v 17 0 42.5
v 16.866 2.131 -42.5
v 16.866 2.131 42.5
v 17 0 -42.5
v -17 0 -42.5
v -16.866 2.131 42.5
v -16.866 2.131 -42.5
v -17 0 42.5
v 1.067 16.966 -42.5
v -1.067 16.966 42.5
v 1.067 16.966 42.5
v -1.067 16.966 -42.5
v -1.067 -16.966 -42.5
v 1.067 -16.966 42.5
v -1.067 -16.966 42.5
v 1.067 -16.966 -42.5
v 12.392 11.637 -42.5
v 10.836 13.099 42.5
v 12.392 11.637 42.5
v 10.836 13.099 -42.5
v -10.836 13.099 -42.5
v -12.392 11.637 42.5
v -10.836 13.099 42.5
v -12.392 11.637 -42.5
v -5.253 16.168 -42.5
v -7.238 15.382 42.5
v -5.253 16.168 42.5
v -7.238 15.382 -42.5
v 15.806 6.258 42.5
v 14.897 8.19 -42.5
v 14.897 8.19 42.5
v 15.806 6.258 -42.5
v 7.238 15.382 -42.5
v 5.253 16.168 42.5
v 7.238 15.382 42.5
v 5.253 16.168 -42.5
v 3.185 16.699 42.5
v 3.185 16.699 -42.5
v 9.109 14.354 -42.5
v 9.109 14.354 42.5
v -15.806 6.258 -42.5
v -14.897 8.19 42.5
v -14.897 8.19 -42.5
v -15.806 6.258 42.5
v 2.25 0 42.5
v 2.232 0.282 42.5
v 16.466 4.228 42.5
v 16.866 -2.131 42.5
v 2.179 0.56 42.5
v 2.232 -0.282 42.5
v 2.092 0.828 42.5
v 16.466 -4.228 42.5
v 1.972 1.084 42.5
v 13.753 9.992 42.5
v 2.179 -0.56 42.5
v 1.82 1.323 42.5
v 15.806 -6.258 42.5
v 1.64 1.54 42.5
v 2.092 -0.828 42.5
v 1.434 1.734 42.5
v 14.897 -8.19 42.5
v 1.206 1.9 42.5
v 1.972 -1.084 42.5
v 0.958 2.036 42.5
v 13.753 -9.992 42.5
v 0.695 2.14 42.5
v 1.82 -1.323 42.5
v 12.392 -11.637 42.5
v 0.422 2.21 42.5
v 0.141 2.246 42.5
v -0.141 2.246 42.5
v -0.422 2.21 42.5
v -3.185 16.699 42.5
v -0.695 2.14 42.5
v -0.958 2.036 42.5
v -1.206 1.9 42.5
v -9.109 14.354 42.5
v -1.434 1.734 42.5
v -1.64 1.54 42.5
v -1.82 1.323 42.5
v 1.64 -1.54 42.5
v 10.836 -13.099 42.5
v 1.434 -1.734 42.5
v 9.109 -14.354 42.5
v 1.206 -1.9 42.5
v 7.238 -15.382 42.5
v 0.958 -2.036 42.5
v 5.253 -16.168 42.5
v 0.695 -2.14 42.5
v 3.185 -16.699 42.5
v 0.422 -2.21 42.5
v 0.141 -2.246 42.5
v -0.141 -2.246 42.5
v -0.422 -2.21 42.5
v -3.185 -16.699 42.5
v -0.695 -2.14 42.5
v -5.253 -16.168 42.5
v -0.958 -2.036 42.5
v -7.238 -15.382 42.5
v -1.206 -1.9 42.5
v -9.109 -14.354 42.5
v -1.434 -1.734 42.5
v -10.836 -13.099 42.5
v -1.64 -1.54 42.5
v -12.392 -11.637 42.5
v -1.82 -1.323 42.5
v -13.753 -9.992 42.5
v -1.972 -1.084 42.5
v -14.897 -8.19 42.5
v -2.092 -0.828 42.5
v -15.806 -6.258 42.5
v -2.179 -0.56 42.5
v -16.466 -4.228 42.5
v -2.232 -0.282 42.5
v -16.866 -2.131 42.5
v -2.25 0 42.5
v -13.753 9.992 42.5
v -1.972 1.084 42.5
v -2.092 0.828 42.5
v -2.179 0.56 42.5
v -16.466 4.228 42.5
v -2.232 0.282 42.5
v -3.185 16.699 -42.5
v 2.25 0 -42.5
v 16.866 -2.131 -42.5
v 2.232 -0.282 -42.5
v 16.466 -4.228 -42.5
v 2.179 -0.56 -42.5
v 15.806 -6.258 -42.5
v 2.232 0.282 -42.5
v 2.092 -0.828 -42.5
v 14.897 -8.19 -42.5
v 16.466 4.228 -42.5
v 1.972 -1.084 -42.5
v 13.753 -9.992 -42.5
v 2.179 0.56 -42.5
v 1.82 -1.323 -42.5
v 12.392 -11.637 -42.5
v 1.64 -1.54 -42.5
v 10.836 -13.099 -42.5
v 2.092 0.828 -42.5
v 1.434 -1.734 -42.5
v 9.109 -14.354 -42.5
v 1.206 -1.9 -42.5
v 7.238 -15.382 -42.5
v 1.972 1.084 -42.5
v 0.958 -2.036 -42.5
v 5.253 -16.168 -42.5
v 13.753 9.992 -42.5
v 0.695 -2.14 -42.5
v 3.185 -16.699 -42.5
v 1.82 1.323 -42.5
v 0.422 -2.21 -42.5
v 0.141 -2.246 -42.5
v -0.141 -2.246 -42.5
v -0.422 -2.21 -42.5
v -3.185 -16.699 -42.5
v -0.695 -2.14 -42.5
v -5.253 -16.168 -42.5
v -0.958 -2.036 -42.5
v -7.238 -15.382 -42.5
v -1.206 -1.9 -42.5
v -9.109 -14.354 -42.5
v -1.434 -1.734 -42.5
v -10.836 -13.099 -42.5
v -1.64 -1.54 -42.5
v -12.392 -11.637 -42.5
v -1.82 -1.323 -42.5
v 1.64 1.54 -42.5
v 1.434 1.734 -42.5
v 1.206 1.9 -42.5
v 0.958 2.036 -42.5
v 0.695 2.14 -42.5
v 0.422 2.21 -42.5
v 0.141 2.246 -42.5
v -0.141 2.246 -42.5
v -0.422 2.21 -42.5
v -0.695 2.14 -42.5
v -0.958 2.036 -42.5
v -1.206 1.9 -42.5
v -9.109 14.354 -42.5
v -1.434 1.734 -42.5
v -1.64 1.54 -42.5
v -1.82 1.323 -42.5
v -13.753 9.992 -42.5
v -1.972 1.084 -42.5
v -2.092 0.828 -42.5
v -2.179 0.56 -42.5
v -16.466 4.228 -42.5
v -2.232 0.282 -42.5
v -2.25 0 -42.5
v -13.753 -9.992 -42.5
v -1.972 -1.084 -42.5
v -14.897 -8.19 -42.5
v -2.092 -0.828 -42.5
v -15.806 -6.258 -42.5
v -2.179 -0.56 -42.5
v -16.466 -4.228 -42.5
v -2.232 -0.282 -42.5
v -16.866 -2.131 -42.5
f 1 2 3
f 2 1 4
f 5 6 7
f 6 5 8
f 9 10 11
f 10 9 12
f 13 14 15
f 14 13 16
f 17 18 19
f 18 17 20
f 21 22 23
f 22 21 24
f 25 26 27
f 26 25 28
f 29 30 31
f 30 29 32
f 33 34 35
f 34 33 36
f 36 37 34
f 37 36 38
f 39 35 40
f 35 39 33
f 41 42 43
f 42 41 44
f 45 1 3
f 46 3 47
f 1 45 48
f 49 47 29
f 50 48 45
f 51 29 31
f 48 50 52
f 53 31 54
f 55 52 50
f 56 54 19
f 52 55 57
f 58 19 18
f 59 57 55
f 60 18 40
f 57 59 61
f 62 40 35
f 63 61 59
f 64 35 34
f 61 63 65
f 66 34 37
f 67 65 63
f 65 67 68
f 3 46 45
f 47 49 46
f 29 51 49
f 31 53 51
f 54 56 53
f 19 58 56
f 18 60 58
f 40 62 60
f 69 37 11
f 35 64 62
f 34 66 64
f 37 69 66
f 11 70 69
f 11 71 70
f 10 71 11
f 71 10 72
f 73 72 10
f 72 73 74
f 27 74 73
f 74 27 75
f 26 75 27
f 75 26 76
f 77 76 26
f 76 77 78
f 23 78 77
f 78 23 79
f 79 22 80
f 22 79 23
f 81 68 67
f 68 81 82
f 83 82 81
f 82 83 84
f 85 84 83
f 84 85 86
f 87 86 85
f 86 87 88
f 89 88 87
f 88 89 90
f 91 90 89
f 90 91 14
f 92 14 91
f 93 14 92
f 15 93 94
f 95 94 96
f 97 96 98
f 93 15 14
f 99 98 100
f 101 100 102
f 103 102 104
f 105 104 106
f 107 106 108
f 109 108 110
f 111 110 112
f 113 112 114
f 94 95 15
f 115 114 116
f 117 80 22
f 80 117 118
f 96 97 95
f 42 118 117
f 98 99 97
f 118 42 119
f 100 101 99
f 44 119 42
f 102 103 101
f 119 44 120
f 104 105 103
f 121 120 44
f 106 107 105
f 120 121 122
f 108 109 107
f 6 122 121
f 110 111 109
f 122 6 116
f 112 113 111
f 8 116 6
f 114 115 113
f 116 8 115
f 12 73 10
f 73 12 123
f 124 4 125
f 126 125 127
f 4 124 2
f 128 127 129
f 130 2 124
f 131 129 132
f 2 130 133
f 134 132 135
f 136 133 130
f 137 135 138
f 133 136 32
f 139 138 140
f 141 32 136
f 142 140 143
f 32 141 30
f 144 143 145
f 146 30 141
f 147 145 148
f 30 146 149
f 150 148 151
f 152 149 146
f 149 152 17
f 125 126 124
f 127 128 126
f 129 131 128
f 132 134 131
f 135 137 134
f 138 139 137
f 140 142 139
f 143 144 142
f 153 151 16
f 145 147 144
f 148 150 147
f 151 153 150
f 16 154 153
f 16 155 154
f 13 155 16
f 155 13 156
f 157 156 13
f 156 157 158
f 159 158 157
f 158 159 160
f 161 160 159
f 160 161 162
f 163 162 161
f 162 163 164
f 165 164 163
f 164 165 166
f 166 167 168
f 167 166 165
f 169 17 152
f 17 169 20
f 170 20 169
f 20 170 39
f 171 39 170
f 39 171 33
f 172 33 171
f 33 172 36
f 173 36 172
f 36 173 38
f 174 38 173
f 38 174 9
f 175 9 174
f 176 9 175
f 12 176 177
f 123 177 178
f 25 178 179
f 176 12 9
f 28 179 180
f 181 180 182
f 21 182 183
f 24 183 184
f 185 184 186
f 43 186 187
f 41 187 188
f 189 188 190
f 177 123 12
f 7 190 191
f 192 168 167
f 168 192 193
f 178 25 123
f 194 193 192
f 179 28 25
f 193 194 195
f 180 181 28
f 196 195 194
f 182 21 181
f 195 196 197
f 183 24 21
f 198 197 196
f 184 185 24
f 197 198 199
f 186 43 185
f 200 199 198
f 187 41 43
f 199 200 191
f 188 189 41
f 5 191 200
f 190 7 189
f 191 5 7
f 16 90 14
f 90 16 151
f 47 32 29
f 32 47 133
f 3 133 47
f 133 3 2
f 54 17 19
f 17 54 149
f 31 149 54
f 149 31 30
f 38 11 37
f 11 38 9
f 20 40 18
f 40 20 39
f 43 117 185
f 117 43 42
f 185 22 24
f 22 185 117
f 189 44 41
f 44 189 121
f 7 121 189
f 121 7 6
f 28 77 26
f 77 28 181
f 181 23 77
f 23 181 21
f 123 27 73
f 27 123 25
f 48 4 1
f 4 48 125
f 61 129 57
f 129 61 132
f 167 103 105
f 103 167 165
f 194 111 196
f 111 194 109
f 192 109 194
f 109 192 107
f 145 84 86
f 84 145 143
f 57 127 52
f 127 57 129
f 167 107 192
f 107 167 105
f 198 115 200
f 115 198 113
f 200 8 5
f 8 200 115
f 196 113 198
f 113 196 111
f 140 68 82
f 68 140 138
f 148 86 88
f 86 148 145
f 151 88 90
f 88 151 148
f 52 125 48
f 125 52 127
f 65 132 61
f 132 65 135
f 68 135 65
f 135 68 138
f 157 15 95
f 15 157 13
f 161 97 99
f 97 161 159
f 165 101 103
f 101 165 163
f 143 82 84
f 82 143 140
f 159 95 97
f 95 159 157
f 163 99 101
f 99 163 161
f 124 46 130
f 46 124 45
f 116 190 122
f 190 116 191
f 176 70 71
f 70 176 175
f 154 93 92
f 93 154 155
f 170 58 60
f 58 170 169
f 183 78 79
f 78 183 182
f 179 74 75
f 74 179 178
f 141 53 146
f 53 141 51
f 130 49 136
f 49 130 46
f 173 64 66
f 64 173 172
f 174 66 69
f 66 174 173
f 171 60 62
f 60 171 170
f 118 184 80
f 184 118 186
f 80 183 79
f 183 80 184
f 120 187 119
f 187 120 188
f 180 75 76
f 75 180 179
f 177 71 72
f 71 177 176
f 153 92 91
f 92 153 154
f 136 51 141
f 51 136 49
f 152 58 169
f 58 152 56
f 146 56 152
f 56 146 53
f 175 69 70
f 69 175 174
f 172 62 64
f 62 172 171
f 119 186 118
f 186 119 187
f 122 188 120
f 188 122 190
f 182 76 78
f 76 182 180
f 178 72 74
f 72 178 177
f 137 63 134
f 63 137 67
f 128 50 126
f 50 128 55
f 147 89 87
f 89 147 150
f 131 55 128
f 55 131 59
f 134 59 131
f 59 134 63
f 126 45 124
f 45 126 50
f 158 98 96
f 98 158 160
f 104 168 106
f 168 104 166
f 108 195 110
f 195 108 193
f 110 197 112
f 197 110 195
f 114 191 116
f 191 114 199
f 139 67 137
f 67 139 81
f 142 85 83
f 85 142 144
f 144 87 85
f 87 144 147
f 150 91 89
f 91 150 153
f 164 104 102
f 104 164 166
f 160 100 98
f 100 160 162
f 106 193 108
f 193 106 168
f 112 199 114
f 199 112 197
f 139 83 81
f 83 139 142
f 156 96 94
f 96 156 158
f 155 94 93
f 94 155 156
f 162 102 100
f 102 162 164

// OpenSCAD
$fn = 50;


difference() {
	union() {
		translate(v = [0, 0, -42.5000000000]) {
			cylinder(h = 85, r = 17.0000000000);
		}
	}
	union() {
		translate(v = [0, 0, -100.0000000000]) {
			cylinder(h = 200, r = 2.2500000000);
		}
	}
}
